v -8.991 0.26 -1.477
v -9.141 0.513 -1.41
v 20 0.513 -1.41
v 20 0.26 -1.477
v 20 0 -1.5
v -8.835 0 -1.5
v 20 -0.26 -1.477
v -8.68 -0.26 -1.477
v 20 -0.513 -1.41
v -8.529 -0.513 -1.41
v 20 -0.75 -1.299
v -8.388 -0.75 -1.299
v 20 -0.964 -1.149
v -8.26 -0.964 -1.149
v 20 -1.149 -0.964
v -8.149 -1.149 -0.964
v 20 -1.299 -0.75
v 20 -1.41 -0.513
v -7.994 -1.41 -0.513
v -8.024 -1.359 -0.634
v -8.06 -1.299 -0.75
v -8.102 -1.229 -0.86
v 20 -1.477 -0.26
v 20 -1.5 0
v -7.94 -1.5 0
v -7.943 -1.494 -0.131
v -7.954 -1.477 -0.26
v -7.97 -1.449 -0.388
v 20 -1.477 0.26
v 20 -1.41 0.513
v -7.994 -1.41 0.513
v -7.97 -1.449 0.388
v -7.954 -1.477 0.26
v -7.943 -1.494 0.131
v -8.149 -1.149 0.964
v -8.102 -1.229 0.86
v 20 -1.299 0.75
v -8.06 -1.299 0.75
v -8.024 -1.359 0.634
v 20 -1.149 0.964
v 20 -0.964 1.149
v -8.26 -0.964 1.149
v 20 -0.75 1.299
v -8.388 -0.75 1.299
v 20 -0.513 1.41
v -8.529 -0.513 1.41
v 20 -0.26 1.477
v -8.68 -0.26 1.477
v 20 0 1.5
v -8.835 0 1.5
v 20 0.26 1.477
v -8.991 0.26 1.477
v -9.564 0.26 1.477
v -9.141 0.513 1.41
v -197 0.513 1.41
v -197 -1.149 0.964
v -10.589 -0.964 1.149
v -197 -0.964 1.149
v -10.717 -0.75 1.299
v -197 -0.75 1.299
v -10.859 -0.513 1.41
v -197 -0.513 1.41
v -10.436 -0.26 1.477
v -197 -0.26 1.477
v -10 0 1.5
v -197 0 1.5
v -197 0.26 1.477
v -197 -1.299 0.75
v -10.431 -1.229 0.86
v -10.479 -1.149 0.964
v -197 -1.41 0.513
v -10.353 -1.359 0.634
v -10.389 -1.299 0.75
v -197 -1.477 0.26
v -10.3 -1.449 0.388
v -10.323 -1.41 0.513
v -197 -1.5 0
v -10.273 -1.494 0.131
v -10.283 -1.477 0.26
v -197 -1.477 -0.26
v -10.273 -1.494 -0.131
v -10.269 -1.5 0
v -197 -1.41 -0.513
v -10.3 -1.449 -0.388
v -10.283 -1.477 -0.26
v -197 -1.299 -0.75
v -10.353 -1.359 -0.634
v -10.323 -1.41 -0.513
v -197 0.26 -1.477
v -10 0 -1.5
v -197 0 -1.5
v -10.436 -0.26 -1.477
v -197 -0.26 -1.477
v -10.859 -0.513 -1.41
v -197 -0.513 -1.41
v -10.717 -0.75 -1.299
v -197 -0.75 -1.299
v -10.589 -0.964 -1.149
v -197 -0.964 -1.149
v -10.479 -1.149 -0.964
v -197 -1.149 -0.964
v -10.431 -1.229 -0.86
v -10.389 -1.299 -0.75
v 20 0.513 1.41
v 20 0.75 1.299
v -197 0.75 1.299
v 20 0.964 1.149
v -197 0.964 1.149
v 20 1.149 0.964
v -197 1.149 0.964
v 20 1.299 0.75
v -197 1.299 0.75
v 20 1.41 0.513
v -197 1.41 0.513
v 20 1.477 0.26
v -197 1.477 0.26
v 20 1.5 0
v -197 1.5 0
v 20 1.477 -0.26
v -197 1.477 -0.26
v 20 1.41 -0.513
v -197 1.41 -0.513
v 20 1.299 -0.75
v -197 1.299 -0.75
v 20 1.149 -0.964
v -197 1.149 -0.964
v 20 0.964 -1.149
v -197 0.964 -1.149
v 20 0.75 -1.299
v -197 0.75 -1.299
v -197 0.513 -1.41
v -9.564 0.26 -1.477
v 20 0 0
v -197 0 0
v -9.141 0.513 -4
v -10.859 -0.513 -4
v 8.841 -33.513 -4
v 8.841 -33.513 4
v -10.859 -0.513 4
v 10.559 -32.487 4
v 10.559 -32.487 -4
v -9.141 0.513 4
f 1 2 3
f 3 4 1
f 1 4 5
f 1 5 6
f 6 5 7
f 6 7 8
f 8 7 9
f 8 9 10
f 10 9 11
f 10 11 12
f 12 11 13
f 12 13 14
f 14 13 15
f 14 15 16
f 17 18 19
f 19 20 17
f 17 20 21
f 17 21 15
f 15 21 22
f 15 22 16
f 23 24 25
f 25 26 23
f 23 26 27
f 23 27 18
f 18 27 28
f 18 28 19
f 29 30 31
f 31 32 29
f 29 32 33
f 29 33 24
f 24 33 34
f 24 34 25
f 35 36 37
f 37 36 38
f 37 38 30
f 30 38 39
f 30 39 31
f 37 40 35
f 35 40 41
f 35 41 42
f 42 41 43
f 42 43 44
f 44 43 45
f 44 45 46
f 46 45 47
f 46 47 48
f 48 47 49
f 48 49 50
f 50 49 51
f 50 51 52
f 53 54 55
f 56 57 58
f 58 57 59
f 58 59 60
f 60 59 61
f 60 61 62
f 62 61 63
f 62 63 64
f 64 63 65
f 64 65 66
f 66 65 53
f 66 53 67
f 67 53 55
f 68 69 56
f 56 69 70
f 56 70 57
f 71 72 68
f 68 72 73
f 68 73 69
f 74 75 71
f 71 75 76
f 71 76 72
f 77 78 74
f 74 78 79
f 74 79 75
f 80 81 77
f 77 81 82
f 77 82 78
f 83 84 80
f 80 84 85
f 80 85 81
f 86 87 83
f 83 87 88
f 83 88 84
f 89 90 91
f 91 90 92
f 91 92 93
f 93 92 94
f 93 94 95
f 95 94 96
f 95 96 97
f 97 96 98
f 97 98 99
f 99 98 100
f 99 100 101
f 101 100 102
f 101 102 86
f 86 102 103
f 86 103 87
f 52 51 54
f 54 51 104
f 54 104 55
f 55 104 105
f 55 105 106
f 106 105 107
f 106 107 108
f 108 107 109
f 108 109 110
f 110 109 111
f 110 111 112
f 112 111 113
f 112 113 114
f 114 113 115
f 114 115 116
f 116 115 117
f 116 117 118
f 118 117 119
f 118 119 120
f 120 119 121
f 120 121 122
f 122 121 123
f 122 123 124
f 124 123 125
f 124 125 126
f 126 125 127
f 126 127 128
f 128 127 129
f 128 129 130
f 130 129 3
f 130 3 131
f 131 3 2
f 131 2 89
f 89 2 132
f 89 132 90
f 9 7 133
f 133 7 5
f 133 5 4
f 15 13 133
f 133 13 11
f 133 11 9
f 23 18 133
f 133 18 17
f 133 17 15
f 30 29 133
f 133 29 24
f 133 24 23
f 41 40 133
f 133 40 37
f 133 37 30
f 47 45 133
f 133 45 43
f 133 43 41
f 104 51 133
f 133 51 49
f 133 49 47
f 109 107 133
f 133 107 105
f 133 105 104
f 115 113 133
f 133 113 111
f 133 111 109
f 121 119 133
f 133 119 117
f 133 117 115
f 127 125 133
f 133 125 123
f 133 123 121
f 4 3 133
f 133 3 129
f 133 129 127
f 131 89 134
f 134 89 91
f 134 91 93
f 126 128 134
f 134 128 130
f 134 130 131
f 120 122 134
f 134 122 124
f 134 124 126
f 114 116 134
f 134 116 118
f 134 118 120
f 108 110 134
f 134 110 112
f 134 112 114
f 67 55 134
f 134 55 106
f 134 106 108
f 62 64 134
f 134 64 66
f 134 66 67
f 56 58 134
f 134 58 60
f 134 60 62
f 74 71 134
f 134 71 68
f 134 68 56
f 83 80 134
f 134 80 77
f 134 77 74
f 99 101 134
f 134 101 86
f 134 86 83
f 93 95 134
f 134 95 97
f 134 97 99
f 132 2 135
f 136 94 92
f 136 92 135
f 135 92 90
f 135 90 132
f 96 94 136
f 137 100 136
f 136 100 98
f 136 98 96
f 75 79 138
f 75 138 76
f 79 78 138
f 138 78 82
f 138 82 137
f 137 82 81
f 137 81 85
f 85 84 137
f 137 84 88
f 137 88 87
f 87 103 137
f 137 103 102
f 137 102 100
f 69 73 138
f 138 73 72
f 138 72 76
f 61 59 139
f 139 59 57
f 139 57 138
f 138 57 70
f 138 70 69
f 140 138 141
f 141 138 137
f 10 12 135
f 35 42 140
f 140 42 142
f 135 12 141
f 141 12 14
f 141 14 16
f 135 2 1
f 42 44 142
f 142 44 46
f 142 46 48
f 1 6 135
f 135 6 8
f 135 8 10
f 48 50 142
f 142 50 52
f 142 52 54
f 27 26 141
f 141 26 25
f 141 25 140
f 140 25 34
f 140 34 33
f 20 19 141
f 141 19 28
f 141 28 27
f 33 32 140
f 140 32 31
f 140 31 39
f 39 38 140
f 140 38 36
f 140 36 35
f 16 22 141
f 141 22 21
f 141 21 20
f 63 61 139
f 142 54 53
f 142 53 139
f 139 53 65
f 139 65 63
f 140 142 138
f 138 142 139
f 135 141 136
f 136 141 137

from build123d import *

# Parameters (mm, degrees)
BOSS_EXTRUDE1_START = -197
SKETCH1_R           = 1.5
BOSS_EXTRUDE1_DEPTH = 217
BOSS_EXTRUDE2_START = -4
BOSS_EXTRUDE2_DEPTH = 8


with BuildPart() as part:
    # Sketch1 → Boss-Extrude1 (new body)
    with BuildSketch(Plane(origin=(0, 0, 0), x_dir=(0, 0, -1), z_dir=(1, 0, 0)).offset(BOSS_EXTRUDE1_START)):
        Circle(SKETCH1_R)
    extrude(amount=BOSS_EXTRUDE1_DEPTH)

    # Sketch2 → Boss-Extrude2 (add)
    with BuildSketch(Plane.XY.offset(BOSS_EXTRUDE2_START)):
        Polygon((-10.858638704, -0.512581287), (-9.141361296, 0.512581287), (10.558638704, -32.487418713), (8.841361296, -33.512581287), align=None)
    extrude(amount=BOSS_EXTRUDE2_DEPTH)


solid = part.part
